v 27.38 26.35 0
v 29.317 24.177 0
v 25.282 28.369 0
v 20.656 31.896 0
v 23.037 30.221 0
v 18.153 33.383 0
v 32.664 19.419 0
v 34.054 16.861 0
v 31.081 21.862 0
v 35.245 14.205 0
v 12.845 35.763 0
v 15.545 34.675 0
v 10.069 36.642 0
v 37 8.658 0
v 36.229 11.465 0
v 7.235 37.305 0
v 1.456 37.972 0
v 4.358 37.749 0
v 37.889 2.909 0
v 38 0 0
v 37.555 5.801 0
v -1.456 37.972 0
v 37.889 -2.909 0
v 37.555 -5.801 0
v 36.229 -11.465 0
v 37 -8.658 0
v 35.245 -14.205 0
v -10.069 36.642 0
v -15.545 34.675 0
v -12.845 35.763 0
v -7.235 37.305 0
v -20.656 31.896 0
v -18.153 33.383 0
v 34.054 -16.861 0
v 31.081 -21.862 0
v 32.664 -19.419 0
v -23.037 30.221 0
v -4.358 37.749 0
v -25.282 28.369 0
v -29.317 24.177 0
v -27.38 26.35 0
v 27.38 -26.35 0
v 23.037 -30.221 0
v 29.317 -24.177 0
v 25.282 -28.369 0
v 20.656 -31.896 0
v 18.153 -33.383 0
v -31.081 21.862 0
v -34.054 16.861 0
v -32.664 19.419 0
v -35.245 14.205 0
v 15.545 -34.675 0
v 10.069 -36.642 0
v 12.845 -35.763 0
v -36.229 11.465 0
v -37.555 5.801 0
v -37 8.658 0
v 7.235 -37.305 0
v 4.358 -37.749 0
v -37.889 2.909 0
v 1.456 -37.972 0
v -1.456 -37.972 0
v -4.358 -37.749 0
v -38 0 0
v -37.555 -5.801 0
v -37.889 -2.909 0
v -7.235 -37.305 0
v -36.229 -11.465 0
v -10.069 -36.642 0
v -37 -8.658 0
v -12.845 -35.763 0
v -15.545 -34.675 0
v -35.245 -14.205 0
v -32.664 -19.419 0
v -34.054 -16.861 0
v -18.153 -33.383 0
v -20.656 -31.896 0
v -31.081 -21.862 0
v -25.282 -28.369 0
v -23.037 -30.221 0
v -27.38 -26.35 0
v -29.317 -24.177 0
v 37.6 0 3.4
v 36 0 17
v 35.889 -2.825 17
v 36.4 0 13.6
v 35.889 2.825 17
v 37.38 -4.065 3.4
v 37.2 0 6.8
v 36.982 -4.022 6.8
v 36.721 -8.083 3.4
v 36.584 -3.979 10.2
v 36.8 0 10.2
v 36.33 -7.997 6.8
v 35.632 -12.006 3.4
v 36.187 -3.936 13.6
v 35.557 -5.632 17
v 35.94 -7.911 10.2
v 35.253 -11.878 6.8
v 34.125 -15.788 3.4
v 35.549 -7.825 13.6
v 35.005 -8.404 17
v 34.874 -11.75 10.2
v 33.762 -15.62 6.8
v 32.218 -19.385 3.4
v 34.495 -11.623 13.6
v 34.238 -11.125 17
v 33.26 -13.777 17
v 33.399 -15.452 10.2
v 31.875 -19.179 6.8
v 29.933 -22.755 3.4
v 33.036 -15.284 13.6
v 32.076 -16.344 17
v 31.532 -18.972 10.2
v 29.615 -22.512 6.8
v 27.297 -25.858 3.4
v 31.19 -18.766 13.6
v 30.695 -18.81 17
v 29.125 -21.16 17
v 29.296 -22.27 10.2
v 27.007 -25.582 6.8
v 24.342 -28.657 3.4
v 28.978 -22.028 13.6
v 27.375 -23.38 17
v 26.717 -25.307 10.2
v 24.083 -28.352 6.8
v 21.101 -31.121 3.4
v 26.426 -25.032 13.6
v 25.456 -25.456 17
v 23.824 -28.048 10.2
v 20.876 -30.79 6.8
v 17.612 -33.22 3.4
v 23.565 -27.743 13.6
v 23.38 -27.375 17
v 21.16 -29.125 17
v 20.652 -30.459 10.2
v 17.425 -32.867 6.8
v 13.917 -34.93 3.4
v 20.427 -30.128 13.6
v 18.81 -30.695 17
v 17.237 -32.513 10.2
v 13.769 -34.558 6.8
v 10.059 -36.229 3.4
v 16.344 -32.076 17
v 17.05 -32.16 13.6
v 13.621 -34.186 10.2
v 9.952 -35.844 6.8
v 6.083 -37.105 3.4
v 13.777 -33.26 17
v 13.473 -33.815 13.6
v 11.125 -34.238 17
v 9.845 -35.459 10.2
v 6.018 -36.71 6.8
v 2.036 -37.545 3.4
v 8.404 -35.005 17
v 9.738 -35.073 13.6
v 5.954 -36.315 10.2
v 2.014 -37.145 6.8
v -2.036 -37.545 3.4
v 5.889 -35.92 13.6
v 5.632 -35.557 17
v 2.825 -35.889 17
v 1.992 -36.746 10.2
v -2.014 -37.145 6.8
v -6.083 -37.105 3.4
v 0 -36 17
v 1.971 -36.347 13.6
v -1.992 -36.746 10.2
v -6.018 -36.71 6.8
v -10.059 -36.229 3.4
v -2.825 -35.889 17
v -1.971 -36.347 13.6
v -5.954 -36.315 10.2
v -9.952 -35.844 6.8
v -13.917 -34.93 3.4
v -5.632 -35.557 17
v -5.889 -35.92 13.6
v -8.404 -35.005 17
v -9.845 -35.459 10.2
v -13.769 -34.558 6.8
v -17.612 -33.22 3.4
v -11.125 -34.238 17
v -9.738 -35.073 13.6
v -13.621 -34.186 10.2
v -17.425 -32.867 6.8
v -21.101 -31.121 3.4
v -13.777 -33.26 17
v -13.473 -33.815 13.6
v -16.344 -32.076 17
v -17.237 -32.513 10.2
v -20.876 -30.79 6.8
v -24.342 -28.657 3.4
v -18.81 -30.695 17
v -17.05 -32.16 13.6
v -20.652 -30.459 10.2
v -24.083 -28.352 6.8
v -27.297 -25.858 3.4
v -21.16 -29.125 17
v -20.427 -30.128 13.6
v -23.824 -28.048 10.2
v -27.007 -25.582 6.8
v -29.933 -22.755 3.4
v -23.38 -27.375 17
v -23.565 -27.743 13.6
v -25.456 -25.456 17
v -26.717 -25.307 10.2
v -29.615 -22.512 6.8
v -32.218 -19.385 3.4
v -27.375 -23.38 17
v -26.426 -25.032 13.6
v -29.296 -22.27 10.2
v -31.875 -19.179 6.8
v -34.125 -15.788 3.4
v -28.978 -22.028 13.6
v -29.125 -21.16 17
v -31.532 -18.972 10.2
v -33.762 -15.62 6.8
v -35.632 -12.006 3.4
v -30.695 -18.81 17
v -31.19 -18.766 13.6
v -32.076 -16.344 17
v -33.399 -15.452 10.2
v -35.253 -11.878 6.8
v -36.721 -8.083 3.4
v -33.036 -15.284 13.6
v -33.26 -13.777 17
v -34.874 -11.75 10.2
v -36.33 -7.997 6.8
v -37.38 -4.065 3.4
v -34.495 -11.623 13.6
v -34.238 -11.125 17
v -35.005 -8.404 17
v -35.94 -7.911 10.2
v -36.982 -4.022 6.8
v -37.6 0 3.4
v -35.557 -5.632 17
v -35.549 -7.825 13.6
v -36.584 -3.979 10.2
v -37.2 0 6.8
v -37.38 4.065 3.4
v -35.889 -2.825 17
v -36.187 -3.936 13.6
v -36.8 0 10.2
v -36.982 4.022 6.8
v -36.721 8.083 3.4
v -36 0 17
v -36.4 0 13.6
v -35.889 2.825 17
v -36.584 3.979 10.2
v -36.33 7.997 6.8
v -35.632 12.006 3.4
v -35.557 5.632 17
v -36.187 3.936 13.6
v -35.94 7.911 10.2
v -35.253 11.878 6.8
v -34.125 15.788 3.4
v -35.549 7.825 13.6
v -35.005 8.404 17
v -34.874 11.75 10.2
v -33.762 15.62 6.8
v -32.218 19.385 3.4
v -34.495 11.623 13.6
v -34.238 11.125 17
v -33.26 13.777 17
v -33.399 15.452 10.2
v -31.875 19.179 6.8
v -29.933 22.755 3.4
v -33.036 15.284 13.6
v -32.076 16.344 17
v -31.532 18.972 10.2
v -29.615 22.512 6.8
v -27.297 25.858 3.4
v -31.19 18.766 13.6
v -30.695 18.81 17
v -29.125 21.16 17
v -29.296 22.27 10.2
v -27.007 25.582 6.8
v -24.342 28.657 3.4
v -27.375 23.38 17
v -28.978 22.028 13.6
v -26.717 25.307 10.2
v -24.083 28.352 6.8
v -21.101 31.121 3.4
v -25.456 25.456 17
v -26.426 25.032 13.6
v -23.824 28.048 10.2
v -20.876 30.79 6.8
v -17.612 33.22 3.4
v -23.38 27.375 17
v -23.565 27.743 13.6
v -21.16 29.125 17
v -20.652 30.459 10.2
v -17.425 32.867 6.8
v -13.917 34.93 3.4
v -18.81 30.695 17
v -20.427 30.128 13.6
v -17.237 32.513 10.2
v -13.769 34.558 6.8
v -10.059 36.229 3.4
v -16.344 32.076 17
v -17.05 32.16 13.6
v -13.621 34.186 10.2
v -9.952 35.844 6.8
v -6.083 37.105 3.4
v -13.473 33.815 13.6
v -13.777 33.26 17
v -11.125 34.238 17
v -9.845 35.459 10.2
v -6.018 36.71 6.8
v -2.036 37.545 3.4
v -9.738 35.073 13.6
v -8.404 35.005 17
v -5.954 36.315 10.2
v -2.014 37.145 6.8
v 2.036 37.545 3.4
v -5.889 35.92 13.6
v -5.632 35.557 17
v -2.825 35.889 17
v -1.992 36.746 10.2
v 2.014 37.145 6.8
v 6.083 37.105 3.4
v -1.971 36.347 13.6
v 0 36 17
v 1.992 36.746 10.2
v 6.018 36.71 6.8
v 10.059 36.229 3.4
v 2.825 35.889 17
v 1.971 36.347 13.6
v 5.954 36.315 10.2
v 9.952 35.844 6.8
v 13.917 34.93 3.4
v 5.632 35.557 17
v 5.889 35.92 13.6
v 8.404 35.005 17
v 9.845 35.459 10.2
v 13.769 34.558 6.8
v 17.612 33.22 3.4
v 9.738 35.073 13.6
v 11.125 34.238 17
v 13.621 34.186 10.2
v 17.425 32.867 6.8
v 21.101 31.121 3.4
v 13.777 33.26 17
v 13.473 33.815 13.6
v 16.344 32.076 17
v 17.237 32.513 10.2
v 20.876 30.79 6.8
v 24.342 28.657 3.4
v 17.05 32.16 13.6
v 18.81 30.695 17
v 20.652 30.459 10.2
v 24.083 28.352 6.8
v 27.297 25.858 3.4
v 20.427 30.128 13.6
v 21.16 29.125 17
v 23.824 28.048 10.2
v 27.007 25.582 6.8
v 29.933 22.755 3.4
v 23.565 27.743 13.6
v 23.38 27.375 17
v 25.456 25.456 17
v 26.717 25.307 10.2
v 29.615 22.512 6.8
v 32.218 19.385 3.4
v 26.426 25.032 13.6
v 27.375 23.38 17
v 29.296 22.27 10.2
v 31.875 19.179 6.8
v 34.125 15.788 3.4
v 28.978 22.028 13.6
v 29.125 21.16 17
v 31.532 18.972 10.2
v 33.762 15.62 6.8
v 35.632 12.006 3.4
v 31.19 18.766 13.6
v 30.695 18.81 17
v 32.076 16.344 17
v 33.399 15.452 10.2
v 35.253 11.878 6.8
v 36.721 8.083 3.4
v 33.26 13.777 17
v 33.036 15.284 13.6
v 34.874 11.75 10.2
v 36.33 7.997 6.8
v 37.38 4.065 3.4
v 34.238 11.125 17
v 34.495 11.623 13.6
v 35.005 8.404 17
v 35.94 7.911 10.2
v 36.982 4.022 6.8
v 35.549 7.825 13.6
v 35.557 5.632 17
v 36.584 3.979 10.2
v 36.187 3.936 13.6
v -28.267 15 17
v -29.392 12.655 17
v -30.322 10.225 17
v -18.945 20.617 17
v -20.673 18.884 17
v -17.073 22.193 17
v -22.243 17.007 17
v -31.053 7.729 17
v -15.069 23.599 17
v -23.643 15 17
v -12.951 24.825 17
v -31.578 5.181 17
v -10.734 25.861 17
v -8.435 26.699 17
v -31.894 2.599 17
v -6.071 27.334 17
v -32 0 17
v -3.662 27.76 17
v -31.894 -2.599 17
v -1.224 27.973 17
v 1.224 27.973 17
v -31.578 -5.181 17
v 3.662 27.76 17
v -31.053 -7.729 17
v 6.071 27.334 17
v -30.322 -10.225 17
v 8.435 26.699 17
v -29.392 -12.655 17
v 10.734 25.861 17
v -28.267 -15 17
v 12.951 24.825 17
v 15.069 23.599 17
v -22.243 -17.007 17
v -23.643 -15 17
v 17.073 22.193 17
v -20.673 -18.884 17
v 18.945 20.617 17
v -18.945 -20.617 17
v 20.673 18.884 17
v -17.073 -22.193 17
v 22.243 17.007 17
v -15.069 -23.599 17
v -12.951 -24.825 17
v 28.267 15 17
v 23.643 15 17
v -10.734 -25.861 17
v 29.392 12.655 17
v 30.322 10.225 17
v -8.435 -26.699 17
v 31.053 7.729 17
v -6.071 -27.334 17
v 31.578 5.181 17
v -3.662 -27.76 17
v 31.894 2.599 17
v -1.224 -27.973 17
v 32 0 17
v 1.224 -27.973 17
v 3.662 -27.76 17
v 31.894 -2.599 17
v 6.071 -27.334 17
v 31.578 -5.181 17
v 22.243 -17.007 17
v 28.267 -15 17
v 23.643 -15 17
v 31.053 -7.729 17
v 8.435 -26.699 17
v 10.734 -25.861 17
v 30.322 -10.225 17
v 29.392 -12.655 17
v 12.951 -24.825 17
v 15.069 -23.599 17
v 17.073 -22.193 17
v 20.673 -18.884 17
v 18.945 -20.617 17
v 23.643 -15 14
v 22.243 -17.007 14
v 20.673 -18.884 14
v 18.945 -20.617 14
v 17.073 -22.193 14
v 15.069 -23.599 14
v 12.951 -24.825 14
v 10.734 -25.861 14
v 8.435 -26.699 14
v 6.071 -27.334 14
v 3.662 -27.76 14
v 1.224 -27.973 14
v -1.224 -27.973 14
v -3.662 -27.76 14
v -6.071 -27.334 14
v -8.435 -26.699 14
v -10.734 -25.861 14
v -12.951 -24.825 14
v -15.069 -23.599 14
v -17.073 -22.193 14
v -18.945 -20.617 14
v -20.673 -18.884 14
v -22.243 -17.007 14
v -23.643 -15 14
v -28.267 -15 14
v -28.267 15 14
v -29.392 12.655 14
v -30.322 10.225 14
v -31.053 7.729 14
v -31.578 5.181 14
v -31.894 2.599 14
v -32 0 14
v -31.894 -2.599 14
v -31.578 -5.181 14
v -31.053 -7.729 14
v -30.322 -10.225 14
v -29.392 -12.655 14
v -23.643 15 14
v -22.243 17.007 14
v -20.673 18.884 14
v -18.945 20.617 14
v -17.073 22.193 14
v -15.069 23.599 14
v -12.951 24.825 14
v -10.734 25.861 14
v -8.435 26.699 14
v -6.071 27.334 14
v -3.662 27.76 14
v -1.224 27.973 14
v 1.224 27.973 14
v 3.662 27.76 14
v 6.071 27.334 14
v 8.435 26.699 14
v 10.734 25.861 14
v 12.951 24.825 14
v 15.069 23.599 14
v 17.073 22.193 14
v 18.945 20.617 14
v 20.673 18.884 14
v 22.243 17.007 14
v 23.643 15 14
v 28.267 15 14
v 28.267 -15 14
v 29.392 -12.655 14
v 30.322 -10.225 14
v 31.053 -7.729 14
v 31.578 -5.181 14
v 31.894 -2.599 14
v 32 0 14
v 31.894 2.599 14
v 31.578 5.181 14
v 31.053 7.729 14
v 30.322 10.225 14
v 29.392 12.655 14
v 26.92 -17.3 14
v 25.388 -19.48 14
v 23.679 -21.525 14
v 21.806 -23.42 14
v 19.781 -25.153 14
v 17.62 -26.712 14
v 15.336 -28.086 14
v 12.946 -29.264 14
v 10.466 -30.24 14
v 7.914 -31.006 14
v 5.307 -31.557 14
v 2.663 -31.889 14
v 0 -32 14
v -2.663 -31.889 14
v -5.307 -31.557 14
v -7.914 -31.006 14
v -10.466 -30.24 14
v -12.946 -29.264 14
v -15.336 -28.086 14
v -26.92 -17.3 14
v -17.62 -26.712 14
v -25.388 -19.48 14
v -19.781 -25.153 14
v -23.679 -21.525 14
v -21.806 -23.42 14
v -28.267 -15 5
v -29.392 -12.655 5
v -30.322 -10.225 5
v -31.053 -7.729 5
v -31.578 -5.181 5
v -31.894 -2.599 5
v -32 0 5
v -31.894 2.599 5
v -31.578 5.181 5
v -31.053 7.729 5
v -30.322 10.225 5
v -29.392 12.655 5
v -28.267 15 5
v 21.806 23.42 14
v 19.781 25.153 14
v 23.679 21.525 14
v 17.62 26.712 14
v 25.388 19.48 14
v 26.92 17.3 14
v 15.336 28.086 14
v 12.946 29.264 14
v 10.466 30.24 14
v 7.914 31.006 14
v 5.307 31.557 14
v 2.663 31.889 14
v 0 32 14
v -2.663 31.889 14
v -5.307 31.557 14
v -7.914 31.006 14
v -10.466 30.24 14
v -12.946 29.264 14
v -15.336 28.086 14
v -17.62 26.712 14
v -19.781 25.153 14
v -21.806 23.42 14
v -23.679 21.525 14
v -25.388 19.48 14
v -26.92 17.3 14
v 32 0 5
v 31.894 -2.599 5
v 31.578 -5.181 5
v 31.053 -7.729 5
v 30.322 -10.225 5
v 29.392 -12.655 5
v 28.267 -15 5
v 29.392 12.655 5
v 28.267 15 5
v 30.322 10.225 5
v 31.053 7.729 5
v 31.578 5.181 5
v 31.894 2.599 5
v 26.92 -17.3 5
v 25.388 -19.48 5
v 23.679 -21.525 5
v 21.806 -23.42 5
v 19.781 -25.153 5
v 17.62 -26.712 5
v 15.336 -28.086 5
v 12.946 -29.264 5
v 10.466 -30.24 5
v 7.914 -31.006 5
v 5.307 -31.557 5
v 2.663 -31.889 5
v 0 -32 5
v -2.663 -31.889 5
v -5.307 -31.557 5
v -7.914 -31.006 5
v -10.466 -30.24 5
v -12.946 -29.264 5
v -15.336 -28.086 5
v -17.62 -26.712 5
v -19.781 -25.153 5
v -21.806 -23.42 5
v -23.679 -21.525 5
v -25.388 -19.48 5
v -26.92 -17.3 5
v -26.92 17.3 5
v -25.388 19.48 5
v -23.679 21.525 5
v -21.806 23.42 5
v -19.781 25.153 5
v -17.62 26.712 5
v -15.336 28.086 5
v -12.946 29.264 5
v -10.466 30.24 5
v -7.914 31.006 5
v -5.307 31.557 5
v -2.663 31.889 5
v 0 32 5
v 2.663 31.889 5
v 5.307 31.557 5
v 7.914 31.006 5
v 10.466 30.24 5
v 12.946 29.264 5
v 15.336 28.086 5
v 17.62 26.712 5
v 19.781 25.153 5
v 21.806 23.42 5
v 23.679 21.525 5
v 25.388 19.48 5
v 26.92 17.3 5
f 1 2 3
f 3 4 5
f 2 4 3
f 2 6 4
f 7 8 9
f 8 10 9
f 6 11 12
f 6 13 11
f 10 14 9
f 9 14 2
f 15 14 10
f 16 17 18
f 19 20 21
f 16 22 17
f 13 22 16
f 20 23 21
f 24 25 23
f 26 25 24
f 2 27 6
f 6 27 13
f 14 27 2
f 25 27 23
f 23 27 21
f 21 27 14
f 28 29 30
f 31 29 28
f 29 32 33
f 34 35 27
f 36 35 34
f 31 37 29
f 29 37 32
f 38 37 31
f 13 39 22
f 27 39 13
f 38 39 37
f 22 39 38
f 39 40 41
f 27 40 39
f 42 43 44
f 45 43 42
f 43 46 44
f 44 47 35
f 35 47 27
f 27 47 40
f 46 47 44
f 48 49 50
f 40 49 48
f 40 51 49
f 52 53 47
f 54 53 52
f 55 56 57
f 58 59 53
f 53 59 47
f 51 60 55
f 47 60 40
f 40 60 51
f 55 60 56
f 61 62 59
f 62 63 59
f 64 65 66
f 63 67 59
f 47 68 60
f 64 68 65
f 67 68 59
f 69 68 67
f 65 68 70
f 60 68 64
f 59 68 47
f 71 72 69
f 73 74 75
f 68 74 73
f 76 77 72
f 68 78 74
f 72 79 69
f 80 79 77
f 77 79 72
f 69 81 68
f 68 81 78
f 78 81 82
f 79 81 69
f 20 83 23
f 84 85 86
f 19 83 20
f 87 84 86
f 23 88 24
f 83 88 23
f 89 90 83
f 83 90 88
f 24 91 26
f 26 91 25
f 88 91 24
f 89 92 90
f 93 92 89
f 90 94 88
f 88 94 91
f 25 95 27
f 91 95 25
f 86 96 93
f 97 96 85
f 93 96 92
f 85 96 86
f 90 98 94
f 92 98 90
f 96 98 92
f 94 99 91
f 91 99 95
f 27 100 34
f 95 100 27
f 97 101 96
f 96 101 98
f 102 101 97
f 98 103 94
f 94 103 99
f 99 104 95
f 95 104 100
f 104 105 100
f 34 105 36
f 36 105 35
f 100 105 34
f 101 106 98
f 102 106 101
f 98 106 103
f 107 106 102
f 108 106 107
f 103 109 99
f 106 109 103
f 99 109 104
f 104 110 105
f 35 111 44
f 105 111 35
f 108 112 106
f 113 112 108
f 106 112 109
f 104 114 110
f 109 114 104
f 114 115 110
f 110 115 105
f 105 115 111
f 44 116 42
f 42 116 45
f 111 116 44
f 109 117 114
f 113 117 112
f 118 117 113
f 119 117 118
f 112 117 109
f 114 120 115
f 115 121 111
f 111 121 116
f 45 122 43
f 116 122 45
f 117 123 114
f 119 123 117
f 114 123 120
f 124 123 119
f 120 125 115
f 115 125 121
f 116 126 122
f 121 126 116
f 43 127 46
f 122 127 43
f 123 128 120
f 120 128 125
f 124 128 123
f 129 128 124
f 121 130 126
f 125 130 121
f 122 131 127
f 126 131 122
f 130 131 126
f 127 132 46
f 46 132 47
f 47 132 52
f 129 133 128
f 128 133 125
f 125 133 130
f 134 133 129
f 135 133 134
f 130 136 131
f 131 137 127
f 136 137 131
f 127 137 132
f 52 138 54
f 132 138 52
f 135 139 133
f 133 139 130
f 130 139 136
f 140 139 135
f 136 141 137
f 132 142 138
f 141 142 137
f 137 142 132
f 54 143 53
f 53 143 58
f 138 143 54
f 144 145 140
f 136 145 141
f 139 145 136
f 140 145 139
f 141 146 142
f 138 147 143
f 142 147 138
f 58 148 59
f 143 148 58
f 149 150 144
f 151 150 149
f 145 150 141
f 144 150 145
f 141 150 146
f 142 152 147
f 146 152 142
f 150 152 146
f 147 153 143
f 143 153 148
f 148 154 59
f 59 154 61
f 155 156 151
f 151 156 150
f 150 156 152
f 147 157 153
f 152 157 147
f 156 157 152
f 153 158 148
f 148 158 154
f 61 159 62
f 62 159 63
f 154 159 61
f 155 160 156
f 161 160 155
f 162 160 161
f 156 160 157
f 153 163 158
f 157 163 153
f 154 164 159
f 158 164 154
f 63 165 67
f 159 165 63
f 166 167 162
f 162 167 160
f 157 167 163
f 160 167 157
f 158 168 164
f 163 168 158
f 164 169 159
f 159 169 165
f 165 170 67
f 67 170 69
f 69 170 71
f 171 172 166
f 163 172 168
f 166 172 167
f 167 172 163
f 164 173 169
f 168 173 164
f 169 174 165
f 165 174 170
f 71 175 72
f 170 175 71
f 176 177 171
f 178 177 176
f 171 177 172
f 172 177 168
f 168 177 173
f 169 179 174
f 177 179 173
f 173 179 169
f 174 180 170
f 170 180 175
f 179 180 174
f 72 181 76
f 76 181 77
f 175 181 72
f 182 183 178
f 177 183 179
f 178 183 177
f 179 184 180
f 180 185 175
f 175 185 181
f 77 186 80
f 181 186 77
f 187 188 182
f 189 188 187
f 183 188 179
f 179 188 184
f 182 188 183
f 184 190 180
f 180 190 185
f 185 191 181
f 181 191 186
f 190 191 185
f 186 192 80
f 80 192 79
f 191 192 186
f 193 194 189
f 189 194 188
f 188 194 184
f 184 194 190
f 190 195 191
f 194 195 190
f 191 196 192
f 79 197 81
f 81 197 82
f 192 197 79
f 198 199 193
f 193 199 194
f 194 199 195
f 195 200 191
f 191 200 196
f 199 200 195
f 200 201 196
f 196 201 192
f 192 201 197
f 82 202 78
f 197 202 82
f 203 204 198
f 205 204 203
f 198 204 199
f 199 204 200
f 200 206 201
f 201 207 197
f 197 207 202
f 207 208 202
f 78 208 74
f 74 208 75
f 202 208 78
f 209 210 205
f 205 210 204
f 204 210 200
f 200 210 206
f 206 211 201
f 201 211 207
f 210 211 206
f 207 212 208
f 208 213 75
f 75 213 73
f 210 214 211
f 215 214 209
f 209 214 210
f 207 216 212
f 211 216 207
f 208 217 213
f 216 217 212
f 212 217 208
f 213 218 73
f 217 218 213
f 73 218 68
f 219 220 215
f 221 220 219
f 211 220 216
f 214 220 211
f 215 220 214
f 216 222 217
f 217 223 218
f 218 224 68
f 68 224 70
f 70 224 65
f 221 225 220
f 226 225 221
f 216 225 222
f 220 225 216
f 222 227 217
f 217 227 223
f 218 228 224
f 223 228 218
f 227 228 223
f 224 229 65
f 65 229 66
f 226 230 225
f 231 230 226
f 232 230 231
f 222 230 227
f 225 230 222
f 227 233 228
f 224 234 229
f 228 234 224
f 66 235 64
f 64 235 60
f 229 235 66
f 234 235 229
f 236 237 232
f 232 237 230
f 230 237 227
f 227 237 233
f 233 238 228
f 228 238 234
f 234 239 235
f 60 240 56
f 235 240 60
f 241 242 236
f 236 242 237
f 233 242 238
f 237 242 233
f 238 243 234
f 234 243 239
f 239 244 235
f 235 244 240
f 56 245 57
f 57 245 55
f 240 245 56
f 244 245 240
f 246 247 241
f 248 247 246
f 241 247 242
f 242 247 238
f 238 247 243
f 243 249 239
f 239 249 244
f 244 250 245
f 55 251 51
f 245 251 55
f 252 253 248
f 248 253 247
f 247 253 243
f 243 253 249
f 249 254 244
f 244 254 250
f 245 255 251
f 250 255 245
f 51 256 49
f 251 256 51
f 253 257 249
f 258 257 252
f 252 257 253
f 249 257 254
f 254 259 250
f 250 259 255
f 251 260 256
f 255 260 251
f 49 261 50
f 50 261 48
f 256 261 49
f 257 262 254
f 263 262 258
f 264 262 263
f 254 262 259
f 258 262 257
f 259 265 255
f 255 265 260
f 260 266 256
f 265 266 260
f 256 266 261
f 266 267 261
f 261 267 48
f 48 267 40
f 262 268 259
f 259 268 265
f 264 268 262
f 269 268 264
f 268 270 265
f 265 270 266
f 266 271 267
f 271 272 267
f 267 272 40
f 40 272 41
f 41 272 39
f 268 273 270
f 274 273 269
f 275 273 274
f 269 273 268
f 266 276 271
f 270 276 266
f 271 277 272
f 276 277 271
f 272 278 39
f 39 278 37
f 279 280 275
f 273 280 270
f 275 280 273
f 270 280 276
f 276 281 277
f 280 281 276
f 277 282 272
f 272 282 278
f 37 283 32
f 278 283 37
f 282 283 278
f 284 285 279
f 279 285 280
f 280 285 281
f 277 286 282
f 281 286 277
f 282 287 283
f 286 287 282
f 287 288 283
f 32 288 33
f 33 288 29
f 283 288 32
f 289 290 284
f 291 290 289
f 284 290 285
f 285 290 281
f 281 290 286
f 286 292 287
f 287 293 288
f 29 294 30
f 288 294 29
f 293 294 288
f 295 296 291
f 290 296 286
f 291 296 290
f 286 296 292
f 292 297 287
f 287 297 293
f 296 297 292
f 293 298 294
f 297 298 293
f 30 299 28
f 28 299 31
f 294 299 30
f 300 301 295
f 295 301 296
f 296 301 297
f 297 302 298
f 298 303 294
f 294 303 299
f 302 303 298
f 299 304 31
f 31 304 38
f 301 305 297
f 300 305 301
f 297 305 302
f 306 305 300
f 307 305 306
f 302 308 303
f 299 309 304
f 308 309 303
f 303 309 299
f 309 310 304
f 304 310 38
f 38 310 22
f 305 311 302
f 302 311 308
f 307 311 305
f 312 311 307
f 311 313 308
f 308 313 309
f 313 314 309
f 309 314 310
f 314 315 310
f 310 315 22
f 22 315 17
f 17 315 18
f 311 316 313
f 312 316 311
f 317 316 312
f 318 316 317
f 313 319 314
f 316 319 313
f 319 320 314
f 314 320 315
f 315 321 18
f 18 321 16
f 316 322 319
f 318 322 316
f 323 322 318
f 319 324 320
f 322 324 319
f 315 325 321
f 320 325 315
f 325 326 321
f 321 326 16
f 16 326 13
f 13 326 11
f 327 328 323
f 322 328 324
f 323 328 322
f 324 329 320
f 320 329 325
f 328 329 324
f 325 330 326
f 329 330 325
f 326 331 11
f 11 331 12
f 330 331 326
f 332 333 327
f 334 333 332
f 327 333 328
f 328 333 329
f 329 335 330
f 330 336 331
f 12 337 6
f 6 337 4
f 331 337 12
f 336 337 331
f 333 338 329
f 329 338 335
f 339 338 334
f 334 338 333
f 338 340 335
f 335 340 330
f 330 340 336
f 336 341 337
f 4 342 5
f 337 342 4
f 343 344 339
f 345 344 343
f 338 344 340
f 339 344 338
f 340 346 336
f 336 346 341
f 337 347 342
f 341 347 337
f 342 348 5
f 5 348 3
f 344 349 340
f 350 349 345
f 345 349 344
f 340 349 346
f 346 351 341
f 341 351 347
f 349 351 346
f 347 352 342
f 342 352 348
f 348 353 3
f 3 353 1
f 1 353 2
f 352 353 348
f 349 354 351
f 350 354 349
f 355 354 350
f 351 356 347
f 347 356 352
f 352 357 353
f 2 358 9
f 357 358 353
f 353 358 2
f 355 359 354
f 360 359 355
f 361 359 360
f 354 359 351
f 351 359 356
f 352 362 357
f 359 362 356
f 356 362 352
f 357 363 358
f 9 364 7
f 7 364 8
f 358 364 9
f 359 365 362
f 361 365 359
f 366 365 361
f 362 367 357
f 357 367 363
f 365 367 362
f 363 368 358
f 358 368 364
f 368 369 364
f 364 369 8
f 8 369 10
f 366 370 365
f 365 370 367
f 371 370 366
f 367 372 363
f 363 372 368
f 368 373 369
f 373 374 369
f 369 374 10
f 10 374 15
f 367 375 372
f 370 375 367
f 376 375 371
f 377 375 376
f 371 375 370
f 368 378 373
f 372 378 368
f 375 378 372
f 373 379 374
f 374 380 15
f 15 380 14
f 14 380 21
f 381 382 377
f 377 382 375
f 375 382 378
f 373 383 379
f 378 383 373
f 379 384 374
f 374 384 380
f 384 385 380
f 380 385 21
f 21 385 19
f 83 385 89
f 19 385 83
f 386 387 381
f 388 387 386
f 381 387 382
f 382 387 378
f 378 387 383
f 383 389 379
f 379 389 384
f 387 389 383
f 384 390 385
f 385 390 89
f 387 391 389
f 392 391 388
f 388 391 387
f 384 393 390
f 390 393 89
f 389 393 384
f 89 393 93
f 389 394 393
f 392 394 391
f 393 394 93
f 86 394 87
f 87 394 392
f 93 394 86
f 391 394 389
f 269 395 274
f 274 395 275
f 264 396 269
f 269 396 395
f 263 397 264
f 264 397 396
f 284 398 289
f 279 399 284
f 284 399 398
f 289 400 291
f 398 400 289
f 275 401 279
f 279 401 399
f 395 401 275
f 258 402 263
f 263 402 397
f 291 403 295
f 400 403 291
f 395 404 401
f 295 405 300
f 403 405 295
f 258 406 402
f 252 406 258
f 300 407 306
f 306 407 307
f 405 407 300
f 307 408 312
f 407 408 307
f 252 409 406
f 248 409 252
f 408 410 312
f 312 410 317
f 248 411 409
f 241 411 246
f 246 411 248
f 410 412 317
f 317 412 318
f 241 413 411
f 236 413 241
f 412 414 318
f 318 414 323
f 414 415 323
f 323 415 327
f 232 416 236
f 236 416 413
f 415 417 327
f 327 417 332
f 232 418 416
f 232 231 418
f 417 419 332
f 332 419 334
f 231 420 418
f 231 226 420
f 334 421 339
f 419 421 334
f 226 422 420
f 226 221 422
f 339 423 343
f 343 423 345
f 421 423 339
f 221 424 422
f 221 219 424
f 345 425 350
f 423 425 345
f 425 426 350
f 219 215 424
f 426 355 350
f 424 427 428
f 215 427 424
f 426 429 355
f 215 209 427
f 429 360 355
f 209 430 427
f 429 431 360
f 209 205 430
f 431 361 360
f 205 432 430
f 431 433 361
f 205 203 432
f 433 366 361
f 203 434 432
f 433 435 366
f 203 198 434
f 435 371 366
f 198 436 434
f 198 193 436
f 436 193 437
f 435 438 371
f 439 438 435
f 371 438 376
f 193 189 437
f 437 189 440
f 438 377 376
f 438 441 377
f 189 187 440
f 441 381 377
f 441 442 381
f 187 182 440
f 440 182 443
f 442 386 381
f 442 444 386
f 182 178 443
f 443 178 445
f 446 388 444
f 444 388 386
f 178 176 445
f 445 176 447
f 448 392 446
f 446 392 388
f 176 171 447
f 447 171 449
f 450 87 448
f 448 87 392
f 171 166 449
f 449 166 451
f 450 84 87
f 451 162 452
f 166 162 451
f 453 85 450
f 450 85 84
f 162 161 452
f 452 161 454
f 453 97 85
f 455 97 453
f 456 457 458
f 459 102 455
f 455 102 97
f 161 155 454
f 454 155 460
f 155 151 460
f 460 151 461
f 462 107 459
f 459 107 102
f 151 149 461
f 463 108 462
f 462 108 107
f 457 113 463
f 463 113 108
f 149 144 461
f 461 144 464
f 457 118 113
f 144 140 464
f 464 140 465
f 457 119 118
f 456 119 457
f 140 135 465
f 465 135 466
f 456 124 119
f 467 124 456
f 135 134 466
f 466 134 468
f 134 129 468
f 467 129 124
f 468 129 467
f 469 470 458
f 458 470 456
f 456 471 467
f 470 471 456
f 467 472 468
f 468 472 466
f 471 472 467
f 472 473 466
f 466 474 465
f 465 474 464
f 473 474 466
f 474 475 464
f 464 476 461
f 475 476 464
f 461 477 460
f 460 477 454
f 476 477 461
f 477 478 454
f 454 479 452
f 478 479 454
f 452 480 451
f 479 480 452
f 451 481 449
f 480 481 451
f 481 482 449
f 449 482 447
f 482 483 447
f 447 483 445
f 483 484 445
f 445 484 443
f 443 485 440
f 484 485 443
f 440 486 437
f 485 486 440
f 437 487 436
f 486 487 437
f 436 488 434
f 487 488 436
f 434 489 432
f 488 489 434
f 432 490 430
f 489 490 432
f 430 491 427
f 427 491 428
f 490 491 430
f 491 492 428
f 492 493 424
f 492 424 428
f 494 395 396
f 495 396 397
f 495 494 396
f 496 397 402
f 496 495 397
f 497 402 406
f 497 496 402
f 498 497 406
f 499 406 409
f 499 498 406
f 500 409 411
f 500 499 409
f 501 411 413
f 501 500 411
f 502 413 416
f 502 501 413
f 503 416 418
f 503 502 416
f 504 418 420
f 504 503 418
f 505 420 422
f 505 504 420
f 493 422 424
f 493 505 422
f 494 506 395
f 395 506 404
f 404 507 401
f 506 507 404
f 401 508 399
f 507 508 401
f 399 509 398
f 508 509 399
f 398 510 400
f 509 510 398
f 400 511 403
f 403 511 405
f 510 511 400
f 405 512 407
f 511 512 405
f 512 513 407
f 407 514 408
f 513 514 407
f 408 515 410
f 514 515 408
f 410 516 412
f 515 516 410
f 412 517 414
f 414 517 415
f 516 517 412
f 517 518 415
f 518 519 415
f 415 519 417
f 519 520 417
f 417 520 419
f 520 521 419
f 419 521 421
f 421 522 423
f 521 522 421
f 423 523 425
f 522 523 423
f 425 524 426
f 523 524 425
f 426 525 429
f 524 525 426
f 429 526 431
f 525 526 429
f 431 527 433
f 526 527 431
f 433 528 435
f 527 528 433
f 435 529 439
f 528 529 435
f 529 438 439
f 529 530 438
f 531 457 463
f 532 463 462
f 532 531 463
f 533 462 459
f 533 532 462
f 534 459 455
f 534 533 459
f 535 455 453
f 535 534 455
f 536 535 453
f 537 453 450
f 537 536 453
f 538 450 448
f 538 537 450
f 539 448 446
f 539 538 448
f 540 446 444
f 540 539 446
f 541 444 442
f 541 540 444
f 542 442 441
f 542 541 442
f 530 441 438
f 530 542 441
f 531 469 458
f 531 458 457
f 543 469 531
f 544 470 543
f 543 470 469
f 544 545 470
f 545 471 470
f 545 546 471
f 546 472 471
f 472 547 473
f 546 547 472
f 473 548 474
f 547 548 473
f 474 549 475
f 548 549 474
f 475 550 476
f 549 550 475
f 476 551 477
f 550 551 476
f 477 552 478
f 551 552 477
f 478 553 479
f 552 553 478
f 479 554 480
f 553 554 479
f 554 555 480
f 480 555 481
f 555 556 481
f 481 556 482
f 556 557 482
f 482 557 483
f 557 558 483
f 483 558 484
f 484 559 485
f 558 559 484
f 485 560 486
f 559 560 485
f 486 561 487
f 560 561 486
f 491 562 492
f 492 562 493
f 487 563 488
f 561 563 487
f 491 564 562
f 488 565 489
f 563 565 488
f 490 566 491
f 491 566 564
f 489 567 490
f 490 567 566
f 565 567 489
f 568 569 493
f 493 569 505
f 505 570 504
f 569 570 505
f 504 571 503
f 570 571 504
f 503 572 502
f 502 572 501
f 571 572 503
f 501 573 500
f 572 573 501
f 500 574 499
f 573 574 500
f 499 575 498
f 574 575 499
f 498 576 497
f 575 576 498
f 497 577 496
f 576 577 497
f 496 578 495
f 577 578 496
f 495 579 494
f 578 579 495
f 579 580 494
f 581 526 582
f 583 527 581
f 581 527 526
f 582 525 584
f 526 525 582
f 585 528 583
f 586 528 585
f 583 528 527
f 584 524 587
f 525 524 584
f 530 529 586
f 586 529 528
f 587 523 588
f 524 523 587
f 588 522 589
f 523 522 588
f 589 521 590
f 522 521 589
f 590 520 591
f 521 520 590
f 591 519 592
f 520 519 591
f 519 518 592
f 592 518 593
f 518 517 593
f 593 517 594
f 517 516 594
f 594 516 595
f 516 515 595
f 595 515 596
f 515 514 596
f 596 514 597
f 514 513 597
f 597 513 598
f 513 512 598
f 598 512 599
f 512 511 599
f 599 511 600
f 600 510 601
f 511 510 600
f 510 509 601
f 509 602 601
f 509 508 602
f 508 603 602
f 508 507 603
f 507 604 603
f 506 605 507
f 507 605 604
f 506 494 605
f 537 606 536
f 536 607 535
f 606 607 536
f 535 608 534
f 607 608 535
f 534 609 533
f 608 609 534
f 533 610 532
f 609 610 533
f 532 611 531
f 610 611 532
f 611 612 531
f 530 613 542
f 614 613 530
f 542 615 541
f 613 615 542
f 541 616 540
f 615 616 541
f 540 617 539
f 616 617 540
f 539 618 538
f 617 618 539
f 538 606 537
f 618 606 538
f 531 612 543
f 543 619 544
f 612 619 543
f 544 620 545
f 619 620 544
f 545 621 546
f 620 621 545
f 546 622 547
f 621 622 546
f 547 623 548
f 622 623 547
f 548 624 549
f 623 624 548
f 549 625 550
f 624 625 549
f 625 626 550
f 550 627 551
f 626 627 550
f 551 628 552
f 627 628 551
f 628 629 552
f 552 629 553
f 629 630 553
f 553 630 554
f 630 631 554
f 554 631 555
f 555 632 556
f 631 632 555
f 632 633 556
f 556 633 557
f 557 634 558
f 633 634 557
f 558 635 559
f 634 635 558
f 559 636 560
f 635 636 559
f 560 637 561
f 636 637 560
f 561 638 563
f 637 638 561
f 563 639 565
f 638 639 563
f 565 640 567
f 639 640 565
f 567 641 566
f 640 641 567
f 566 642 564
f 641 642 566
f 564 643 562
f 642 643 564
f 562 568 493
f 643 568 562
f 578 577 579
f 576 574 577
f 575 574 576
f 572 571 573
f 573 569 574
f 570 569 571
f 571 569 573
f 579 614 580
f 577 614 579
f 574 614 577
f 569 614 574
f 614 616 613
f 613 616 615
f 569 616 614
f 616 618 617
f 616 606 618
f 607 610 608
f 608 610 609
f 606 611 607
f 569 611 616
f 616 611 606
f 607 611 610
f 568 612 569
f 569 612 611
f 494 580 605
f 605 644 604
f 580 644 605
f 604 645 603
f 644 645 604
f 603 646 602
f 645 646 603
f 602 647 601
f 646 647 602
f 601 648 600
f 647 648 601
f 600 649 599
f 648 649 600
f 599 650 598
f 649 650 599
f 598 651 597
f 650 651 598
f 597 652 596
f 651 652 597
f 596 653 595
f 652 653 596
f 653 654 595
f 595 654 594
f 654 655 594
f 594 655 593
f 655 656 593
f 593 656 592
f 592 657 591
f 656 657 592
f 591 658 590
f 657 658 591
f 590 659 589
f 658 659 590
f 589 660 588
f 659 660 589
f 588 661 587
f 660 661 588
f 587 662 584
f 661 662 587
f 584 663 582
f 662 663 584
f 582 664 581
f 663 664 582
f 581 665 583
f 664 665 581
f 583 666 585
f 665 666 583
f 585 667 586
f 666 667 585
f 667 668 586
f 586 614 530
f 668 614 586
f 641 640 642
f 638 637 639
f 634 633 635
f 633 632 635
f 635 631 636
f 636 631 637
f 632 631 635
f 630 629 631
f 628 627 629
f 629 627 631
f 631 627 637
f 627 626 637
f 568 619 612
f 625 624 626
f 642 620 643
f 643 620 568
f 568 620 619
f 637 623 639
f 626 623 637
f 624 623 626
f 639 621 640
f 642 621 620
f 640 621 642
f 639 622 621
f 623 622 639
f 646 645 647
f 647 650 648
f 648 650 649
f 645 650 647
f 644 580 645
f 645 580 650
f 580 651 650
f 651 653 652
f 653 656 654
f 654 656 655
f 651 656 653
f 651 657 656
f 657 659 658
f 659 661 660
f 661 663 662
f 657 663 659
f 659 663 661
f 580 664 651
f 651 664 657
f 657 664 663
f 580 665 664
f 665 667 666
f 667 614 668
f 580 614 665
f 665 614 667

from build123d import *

# Parameters (mm, degrees)
POCKET_DEPTH = 12.001


with BuildPart() as part:
    # Sketch → Revolution (revolve)
    with BuildSketch(Plane.XZ):
        Polygon((0, 0), (38, 0), (36, 17), (28, 17), (28, 14), (32, 14), (32, 5), (0, 5), align=None)
    revolve(axis=Axis((0, 0, 0), (0, 0, 1)))

    # Sketch001 (on Face7 of Revolution) → Pocket (cut, through all)
    with BuildSketch(Plane(origin=(0, 0, 5), x_dir=(-1, 0, 0), z_dir=(0, 0, 1))):
        with BuildLine():
            ThreePointArc((28.266588, -15), (32, 0), (28.266588, 15))
            Line((28.266588, 15), (-28.266588, 15))
            ThreePointArc((-28.266588, 15), (-32, 0), (-28.266588, -15))
            Line((28.266588, -15), (-28.266588, -15))
        make_face()
    extrude(amount=POCKET_DEPTH, mode=Mode.SUBTRACT)


solid = part.part
